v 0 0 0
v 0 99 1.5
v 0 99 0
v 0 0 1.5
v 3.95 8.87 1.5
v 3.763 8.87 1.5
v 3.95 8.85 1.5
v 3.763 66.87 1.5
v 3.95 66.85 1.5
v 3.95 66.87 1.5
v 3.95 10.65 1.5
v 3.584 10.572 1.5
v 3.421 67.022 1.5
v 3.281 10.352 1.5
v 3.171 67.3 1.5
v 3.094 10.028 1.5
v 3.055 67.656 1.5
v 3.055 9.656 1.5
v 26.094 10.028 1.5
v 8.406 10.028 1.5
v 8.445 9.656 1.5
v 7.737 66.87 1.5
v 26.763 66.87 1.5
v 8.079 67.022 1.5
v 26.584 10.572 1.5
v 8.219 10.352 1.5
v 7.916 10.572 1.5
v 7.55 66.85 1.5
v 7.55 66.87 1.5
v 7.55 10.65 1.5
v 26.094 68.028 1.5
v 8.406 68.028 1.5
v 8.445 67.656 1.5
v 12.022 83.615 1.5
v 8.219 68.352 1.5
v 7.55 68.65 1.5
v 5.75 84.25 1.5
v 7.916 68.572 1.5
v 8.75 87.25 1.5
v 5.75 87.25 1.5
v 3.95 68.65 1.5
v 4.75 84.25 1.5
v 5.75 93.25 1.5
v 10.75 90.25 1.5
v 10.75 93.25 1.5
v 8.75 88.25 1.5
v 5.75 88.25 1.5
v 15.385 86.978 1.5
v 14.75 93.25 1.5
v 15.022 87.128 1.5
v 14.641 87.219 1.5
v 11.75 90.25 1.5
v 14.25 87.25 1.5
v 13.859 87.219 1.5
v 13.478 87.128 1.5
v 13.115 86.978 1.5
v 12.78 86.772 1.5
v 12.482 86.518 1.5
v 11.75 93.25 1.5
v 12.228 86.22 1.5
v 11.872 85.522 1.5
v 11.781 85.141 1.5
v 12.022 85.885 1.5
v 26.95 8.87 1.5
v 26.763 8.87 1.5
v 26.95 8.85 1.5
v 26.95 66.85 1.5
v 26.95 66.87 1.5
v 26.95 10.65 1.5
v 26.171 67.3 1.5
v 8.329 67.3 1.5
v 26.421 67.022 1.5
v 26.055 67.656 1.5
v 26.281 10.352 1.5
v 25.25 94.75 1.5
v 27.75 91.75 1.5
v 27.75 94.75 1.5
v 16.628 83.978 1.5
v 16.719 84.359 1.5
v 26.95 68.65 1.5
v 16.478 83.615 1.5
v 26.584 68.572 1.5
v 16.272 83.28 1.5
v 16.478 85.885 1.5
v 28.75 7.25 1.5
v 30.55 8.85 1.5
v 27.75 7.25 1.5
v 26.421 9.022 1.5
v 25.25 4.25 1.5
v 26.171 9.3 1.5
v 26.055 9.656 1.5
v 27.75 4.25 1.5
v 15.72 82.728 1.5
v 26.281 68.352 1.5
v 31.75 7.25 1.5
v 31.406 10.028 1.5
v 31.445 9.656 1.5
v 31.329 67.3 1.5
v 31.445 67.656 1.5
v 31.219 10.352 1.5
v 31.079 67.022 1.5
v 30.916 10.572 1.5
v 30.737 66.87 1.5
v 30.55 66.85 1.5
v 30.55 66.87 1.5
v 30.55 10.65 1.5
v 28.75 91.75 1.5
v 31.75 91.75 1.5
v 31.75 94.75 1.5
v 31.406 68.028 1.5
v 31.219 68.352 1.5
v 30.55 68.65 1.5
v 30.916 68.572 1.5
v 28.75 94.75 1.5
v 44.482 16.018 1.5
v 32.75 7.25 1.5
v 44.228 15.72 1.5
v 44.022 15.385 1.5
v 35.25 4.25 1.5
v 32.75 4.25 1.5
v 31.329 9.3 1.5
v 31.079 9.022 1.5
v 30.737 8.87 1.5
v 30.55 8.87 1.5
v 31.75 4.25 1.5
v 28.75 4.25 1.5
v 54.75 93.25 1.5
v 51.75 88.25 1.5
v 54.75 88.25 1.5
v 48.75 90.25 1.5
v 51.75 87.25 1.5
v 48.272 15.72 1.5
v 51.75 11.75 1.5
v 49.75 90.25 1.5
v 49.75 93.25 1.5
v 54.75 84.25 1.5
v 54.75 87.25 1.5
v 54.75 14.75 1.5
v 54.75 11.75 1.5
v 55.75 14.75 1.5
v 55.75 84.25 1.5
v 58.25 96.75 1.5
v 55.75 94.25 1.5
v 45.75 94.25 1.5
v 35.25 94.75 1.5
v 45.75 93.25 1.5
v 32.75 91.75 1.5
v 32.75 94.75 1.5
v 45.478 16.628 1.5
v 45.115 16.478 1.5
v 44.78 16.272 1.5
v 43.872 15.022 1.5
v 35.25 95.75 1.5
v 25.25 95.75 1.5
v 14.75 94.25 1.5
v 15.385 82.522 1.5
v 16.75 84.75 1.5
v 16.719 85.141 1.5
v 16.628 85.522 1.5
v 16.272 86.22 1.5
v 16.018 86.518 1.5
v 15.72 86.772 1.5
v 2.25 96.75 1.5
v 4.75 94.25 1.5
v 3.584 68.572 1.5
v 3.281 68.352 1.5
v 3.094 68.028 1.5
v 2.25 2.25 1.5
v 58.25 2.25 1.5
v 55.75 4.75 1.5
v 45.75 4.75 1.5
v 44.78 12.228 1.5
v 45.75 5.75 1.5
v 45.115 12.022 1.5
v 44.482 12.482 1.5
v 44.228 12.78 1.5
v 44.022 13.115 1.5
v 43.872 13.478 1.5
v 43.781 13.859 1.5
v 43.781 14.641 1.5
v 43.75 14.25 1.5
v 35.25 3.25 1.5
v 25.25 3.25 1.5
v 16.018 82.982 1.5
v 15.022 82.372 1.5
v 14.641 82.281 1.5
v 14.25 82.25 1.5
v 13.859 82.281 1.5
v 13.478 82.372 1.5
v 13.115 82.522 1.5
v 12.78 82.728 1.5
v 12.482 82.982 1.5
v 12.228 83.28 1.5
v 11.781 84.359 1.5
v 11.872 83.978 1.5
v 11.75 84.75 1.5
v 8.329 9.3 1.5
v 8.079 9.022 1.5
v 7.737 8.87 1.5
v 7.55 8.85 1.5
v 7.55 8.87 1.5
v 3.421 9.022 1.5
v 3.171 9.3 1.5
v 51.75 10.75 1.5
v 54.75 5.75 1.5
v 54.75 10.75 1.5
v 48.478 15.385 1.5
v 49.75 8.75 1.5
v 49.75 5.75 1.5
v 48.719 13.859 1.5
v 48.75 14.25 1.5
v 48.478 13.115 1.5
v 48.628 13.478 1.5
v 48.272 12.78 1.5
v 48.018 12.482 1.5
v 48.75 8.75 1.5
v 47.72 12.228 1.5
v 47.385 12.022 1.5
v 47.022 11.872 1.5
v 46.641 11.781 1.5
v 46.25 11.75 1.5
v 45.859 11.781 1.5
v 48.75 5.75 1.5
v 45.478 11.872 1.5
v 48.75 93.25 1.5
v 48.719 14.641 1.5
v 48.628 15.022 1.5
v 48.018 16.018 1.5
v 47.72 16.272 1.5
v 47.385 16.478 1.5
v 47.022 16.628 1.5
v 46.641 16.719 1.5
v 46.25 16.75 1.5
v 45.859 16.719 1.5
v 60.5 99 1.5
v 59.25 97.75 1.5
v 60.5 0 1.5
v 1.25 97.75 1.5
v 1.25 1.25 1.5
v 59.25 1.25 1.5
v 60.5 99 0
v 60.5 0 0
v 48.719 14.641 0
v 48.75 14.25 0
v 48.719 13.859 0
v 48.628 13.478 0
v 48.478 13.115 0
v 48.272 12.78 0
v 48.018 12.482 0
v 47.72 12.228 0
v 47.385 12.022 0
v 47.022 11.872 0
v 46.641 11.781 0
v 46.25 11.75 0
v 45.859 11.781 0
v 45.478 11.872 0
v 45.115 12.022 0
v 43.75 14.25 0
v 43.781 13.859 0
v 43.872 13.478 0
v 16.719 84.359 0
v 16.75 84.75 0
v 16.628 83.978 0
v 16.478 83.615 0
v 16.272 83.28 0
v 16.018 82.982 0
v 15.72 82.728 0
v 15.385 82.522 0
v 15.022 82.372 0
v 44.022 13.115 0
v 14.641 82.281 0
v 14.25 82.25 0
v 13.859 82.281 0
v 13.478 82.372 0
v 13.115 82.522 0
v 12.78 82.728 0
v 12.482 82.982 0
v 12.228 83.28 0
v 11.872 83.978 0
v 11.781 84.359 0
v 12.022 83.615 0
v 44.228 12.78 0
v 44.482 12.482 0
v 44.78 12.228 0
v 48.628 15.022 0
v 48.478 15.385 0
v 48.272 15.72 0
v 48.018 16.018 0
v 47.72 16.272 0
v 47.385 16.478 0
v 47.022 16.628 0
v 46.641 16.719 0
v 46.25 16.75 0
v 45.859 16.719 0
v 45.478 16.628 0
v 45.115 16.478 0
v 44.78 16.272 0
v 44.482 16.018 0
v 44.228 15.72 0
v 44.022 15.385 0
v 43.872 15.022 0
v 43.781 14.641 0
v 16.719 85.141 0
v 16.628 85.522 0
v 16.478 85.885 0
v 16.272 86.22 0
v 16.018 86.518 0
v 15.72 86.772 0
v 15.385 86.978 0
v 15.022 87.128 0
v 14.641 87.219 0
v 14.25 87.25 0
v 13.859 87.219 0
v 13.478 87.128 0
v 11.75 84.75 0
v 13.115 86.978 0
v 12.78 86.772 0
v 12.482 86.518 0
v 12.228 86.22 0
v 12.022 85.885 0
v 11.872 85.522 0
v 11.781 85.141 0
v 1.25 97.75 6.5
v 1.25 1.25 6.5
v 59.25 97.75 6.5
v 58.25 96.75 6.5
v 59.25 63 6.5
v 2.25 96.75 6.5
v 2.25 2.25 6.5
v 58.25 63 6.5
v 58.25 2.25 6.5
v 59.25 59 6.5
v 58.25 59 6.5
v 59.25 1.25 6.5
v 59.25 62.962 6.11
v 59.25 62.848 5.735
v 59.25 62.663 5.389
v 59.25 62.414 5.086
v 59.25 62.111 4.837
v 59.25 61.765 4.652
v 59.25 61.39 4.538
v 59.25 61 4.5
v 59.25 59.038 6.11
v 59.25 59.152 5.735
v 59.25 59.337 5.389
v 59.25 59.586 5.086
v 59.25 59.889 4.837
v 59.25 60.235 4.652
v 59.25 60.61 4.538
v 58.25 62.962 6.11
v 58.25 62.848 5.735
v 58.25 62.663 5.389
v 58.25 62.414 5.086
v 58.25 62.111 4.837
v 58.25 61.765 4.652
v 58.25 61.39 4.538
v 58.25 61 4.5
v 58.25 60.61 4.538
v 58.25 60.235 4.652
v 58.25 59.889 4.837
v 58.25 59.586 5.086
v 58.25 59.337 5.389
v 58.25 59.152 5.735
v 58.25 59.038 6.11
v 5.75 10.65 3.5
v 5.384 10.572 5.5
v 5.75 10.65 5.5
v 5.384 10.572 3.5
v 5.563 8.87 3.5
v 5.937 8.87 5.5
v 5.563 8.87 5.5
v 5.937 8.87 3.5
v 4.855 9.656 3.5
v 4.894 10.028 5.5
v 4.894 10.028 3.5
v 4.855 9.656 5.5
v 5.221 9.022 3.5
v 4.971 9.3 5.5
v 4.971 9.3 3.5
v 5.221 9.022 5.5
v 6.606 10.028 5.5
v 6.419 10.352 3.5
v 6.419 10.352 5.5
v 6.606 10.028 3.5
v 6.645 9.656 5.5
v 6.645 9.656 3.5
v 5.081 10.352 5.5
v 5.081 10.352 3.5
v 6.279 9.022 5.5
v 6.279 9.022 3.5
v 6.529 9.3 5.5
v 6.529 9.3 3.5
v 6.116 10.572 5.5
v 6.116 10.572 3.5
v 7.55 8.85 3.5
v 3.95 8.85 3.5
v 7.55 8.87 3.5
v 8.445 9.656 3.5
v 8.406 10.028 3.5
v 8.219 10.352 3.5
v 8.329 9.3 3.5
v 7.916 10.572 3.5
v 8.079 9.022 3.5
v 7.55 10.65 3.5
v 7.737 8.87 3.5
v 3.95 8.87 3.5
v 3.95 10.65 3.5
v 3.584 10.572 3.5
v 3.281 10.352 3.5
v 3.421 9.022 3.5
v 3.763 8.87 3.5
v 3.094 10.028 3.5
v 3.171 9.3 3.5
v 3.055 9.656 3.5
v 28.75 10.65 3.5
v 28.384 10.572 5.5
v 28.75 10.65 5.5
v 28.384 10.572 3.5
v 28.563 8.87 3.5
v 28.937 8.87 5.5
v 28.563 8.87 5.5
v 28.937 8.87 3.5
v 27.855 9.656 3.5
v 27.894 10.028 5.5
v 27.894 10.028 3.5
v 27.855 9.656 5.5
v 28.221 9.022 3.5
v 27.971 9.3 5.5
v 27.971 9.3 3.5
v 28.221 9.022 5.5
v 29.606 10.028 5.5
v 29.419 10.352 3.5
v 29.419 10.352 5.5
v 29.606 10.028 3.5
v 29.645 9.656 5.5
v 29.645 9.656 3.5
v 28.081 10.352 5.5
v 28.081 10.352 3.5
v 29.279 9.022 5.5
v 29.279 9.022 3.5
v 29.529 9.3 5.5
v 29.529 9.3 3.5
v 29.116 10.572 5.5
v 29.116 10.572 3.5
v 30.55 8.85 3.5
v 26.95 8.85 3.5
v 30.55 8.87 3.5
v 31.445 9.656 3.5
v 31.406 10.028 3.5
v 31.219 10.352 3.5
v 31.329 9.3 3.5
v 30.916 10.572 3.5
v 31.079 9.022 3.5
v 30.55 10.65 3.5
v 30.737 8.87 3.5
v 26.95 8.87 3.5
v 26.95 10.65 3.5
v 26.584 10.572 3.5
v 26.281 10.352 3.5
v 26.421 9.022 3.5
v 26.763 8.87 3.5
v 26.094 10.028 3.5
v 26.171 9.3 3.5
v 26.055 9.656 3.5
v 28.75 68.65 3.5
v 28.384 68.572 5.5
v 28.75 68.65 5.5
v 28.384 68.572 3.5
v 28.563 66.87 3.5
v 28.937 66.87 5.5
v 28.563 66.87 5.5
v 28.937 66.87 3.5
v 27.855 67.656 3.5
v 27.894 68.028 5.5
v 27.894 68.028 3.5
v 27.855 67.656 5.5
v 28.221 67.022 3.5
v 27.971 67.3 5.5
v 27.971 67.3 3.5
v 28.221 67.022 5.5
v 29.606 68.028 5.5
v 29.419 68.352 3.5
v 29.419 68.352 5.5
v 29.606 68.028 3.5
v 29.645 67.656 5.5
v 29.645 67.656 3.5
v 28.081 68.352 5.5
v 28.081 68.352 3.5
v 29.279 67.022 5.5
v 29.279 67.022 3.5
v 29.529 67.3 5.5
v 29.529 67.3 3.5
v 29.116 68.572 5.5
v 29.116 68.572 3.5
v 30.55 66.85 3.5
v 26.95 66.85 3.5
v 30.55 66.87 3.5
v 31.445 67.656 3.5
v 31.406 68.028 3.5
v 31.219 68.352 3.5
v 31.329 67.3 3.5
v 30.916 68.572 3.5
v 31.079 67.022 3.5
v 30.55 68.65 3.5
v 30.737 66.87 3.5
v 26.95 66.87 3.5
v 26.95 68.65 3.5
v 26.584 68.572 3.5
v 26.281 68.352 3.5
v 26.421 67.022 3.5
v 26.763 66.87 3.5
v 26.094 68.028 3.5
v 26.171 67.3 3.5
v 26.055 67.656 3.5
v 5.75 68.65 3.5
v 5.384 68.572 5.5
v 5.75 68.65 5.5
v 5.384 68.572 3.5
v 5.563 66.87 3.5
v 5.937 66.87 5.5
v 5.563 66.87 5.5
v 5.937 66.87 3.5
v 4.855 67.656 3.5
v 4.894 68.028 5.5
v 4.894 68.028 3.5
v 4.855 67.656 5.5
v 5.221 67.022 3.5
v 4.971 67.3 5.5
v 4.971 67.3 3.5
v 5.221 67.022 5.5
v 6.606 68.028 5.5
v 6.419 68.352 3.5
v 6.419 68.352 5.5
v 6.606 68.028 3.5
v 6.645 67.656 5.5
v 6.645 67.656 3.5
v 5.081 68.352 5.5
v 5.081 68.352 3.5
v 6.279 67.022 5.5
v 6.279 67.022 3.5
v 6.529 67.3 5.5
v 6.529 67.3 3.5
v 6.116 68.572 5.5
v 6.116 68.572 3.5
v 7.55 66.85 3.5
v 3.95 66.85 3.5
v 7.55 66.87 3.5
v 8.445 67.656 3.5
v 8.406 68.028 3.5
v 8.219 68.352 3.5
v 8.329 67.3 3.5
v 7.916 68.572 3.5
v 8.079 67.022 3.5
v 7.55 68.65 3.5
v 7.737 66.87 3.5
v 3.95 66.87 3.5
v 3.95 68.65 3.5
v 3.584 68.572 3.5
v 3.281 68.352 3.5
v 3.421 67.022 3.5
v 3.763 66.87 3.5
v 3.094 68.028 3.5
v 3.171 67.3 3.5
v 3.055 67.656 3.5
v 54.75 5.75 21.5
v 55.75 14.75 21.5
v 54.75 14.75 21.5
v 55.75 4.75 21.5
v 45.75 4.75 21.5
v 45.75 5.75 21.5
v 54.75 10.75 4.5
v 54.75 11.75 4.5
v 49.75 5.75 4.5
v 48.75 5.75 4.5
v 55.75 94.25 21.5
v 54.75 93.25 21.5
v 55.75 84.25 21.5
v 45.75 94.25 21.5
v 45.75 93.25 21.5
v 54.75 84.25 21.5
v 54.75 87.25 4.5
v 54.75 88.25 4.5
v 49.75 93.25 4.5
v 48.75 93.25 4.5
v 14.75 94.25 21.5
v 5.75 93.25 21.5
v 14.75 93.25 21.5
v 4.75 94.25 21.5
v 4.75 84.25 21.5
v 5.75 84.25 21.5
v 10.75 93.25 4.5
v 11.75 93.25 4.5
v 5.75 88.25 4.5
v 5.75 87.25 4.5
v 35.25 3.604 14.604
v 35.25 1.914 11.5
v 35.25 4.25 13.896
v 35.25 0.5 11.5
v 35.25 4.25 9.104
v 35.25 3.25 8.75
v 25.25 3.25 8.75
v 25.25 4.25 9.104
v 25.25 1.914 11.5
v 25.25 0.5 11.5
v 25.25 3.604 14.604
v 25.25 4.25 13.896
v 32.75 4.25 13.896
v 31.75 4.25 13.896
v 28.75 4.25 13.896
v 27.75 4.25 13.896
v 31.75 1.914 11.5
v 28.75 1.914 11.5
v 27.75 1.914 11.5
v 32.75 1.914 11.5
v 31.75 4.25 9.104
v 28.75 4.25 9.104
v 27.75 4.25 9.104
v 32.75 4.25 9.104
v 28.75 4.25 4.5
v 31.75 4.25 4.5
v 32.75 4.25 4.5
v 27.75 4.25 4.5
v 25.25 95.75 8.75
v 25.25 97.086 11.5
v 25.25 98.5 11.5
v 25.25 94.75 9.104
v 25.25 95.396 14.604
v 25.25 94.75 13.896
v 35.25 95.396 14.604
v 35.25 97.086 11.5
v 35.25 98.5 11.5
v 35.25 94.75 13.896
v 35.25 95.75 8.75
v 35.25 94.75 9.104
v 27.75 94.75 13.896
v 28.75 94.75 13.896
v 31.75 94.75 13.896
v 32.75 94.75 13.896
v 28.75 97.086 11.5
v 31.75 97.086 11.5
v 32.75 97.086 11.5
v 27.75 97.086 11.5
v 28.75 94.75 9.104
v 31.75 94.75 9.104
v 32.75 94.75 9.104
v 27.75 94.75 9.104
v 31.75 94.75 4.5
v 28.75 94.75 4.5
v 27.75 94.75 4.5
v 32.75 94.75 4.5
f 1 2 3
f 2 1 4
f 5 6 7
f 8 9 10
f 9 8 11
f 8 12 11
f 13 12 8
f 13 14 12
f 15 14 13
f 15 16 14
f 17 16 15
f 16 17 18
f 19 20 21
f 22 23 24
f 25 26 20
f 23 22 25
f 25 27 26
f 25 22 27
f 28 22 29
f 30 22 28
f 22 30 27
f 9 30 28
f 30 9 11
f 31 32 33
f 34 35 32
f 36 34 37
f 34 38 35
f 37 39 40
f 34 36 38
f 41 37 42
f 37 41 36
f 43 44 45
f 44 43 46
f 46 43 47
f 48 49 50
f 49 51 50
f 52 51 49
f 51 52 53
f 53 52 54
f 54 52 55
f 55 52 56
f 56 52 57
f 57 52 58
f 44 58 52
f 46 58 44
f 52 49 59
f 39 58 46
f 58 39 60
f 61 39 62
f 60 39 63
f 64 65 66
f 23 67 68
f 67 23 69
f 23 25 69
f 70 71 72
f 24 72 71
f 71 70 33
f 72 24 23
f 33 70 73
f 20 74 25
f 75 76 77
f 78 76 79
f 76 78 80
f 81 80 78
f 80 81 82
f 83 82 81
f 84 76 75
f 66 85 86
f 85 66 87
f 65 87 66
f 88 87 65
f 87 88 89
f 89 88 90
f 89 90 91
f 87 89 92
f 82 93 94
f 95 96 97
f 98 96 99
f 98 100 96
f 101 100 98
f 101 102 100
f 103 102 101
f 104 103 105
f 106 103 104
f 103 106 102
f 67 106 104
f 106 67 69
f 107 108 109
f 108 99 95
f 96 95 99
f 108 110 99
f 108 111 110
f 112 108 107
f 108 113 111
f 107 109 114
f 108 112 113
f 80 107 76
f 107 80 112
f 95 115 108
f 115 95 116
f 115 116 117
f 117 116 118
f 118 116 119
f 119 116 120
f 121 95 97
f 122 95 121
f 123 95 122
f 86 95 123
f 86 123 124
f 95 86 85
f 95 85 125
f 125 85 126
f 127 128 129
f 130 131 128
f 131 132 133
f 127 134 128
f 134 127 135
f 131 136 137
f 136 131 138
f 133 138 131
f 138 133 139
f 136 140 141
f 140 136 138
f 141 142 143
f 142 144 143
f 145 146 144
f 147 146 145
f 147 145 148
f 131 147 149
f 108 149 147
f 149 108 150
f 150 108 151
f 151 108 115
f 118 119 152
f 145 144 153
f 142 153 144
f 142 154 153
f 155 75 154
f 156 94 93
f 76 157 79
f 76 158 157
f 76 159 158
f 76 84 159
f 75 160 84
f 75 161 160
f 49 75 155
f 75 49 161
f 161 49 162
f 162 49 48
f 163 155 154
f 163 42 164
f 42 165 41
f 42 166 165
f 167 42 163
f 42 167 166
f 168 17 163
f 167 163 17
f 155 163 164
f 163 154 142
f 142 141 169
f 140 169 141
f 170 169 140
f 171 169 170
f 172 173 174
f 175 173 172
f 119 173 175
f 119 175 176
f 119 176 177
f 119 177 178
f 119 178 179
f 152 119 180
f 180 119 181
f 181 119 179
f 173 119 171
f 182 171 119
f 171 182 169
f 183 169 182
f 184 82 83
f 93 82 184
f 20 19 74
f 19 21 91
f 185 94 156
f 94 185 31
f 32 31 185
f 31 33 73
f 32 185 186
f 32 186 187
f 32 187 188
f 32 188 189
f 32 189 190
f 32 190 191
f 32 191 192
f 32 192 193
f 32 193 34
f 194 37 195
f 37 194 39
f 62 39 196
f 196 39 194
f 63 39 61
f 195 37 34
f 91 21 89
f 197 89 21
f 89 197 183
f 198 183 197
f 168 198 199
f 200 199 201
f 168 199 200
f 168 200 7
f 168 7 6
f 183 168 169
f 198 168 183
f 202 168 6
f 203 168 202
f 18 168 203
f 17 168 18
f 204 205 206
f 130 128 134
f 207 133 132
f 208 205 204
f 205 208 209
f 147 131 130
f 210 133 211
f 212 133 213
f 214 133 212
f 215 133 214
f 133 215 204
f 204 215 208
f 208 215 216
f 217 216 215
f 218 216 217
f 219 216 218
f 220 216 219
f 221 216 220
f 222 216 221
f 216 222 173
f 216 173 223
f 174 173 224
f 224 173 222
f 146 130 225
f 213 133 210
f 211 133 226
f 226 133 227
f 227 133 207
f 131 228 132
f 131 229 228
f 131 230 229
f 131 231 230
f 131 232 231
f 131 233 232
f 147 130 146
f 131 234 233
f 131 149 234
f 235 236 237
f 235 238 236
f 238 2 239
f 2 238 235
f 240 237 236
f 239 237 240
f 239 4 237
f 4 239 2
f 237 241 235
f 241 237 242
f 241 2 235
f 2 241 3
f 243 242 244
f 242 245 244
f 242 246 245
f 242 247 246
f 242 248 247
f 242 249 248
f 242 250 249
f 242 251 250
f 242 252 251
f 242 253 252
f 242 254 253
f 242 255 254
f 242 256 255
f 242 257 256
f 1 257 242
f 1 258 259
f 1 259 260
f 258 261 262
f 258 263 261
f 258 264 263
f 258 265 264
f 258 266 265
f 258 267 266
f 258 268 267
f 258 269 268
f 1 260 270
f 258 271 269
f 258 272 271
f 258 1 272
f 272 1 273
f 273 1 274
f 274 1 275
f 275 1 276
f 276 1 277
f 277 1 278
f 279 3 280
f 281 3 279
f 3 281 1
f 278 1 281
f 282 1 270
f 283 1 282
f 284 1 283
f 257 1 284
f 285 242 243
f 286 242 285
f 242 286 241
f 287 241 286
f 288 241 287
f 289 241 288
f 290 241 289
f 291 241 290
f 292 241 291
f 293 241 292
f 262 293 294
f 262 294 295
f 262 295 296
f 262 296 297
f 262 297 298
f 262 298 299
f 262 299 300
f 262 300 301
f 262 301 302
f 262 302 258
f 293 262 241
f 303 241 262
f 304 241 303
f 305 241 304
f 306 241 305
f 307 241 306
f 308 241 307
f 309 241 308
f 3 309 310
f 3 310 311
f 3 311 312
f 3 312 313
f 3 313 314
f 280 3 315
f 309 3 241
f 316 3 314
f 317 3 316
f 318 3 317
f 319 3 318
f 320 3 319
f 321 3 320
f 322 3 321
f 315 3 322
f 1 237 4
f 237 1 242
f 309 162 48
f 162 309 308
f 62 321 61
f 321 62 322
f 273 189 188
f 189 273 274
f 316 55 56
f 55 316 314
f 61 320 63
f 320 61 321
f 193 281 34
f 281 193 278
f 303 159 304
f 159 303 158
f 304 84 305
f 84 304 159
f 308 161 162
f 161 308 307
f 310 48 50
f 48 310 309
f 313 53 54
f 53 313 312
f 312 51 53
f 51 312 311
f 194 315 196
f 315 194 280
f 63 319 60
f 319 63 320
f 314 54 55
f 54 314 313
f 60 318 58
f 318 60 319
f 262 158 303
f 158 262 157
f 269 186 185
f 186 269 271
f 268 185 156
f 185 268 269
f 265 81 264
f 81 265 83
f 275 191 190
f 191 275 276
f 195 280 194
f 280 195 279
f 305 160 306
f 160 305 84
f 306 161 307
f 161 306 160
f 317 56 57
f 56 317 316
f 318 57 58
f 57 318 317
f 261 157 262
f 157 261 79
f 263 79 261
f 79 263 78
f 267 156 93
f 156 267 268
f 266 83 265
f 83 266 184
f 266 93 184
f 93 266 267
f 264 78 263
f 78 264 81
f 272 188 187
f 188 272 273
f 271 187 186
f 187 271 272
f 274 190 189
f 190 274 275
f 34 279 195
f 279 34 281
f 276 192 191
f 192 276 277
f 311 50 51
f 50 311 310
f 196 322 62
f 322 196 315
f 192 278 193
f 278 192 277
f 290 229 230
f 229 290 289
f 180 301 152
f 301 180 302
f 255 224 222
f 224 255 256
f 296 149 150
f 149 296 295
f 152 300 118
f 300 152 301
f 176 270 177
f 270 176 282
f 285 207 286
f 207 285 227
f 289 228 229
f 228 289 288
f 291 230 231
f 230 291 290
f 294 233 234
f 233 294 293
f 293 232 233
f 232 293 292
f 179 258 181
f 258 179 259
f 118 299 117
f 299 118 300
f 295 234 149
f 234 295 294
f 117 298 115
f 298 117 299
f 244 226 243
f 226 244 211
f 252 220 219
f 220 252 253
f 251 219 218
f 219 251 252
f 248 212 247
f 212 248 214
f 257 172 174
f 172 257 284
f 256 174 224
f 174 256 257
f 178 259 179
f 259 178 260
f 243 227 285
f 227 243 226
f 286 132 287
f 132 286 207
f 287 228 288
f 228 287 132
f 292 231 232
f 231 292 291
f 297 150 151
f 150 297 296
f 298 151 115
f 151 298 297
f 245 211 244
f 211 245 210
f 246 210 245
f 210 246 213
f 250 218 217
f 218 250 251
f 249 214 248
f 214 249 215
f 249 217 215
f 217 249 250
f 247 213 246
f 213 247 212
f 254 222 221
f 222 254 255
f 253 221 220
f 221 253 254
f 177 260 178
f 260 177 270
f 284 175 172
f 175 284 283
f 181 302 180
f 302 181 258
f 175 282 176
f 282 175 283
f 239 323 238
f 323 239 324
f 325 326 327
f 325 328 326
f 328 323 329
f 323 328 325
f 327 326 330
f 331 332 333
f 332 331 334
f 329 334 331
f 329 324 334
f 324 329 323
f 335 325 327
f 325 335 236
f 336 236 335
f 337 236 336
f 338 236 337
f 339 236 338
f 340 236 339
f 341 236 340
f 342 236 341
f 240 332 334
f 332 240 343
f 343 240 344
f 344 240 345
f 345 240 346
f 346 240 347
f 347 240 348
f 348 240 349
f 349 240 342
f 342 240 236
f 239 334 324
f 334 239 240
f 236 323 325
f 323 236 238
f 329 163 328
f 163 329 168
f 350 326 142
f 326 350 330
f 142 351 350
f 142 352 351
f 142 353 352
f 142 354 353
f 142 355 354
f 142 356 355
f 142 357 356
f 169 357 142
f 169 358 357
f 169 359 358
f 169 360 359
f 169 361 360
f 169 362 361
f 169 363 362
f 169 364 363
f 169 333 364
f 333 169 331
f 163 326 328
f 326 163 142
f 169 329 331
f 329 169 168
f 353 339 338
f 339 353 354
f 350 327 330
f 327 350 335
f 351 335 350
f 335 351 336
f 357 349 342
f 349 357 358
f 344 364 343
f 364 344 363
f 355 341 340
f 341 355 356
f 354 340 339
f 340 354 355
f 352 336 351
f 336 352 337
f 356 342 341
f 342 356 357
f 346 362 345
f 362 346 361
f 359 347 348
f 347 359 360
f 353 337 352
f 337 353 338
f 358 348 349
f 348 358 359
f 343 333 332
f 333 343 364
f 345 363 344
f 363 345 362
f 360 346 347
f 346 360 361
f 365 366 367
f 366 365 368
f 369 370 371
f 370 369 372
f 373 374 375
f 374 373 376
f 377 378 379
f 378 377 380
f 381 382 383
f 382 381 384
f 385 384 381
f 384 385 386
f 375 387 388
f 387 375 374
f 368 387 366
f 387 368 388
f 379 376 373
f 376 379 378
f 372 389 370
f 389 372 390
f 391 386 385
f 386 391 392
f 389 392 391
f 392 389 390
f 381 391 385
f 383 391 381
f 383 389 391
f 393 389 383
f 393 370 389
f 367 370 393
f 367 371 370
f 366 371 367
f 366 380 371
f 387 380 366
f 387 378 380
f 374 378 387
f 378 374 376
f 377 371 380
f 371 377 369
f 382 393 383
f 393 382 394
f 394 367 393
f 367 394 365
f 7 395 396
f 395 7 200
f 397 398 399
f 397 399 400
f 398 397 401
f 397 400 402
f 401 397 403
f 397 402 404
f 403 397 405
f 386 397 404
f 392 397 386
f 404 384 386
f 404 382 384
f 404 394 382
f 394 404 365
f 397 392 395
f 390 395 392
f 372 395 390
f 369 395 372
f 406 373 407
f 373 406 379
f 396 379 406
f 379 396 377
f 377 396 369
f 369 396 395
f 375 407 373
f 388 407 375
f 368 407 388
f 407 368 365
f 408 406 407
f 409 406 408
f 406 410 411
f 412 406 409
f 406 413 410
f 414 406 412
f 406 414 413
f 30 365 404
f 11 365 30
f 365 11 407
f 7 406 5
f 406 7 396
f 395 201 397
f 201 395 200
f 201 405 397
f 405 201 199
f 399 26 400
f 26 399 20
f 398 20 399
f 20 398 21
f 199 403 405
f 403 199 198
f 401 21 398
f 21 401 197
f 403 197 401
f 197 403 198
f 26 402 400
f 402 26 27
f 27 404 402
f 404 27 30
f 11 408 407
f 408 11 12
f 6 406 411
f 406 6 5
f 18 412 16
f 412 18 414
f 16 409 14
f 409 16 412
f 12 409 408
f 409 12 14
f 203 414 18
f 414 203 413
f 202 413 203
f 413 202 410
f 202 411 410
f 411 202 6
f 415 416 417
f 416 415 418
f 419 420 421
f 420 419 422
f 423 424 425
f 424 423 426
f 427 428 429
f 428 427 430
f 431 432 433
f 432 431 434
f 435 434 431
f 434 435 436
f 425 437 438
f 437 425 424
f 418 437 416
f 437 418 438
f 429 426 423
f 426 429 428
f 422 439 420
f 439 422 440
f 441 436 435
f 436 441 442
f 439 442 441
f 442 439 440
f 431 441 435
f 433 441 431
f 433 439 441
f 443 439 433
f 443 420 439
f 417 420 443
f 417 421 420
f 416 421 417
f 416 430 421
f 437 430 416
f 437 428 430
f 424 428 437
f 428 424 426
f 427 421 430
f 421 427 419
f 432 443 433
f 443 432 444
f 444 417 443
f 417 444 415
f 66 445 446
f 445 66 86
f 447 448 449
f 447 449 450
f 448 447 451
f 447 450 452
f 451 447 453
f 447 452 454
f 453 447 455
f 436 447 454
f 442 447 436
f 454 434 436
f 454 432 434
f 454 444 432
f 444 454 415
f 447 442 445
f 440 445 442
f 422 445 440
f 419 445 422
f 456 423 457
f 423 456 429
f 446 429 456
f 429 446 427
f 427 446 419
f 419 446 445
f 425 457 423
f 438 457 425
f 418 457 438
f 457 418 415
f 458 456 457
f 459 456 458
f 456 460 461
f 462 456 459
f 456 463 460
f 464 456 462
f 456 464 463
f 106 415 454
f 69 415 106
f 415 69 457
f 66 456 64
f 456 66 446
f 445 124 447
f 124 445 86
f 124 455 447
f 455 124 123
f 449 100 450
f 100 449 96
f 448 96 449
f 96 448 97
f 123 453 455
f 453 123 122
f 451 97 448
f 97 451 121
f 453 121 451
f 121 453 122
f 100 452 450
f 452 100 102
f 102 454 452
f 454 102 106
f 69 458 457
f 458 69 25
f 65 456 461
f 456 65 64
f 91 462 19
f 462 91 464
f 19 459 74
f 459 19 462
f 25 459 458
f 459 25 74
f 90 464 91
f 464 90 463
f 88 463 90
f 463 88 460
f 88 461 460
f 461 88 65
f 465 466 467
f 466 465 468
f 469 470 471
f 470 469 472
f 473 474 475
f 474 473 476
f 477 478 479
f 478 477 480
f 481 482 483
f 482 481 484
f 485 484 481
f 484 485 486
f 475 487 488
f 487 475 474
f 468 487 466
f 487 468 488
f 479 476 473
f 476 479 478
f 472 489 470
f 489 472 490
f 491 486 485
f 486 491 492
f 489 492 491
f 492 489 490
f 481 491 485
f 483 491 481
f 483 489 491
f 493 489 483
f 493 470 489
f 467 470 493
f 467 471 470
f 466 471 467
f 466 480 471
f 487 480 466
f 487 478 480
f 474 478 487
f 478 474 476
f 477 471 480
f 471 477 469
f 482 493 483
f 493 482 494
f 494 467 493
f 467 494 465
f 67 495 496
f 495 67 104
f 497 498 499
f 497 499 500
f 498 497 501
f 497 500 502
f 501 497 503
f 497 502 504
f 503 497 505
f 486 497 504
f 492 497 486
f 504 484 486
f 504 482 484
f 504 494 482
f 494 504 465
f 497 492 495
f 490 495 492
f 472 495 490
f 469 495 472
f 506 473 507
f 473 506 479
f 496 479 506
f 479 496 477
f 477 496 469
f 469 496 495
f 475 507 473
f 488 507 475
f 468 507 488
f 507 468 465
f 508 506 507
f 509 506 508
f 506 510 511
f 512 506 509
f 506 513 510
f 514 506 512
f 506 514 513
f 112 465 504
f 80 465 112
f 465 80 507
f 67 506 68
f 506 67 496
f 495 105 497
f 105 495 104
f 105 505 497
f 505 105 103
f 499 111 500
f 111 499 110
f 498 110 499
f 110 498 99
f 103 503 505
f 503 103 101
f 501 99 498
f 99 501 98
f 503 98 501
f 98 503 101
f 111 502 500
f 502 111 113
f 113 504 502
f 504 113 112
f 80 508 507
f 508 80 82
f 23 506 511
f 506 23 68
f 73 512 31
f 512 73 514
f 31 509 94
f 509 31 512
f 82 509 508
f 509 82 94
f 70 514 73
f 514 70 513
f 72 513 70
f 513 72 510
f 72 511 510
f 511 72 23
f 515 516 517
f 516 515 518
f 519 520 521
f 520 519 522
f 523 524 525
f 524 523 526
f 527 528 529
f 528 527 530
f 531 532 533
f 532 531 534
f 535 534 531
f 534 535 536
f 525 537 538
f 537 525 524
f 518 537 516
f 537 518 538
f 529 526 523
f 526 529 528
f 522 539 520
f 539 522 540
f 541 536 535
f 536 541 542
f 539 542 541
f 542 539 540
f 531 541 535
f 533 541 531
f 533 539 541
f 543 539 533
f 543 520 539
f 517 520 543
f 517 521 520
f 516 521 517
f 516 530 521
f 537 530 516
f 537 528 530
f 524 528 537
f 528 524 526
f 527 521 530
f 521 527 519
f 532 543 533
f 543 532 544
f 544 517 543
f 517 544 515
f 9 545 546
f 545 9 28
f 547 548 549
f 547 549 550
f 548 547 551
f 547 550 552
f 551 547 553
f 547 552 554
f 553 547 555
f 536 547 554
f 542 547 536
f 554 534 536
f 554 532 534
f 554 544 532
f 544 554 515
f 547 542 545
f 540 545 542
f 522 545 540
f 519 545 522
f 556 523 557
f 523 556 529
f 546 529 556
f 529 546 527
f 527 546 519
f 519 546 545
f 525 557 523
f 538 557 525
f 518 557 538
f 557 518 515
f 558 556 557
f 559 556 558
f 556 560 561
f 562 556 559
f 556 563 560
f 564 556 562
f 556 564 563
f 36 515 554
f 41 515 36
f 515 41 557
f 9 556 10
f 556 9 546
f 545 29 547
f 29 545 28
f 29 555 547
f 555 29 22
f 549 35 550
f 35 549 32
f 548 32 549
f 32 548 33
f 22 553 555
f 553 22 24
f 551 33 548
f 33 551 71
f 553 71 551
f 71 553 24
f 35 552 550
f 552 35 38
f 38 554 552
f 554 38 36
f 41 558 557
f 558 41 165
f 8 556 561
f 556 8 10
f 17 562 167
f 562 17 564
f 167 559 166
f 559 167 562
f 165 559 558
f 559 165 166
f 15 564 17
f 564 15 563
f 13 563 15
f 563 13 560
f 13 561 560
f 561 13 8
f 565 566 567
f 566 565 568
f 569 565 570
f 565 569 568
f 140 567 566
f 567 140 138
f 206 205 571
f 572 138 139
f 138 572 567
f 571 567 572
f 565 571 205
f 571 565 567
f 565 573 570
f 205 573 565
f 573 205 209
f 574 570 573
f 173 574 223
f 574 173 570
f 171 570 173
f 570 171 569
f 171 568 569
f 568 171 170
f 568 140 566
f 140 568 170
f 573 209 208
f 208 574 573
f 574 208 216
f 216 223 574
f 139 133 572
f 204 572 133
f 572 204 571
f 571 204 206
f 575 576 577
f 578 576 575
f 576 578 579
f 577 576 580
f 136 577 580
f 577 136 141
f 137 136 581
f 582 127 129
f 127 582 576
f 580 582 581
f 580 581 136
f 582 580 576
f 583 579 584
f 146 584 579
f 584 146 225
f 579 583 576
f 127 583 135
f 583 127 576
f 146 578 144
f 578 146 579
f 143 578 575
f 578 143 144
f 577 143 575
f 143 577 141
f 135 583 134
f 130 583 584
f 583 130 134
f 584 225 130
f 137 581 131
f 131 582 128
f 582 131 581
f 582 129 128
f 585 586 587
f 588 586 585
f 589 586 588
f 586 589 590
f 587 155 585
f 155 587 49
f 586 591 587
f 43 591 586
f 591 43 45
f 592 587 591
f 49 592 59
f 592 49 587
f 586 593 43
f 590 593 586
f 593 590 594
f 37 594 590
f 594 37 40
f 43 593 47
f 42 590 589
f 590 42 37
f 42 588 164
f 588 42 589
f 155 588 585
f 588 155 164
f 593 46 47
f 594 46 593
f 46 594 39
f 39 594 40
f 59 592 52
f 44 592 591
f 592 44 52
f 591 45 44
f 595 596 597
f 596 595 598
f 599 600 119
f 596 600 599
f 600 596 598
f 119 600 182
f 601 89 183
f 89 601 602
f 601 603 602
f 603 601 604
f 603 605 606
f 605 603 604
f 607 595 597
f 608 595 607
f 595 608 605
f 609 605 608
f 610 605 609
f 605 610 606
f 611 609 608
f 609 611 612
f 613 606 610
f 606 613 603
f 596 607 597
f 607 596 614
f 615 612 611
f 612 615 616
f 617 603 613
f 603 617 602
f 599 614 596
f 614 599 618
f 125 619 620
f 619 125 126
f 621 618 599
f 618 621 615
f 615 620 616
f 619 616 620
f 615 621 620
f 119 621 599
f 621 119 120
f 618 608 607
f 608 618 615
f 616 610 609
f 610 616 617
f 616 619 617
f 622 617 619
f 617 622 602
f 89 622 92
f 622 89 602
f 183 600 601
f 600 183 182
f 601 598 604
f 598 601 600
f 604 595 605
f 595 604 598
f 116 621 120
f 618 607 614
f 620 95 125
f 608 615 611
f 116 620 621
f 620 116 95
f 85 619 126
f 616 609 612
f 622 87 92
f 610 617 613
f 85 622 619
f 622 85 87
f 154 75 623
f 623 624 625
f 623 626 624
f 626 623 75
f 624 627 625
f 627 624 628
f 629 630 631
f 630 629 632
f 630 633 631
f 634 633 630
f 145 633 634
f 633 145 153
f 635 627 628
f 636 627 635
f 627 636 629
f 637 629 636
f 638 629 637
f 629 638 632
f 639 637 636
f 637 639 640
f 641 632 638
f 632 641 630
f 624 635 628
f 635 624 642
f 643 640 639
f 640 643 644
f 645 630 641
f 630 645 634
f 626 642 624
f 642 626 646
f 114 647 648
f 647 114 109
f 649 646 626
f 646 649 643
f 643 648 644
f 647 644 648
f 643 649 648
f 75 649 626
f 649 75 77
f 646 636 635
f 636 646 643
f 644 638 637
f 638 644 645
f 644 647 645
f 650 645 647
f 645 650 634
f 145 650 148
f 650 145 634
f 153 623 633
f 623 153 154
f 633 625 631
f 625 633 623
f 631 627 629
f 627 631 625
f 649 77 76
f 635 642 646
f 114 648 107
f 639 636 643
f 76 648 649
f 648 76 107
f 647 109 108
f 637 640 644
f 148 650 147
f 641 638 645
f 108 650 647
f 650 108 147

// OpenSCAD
// file: variables.scad
$fa = 1;
$fs = 0.4;

wall_thickness = 1;
wall_buffer = 0.25;
back_thickness = 1.5;

hat_width = 58;
hat_length = 96.5;
hat_thickness = 3;
hat_height = 21;
hat_bottom_padding = 2;

display_width = 47.32;
display_length = 81.12;
display_inset = (hat_width - display_width) / 2;

case_width = hat_width + (wall_thickness + wall_buffer) * 2;
case_length = hat_length + (wall_thickness + wall_buffer) * 2;
case_height = hat_height + hat_bottom_padding + back_thickness * 2;

cable_cutout_radius = 2;
cable_cutout_offset = 61;
cable_cutout_height = 6.5;

clip_width = 10;
clip_point_height = 10;

$vpt = [hat_width / 2, hat_length / 2, 0];
$vpd = 500;
// main file
include<./variables.scad>

bottom_inside_width = hat_width - wall_thickness * 2;
bottom_inside_length = hat_length - wall_thickness * 2;

color("gray")
base();

translate([
    wall_thickness * 2 + wall_buffer,
    wall_thickness * 2 + wall_buffer,
    back_thickness
]) {
    color("blue")
    translate([0, 4, 0])
    pins();
    
    color("red")
    supports();
    
    color("green")
    clips();
}

module base() {
    screw_hole_radius = 2.5;
    screw_hole_inset = 12;
    
    difference() {
        cube([
            case_width,
            case_length,
            back_thickness
        ]);
        
        translate([
            wall_thickness * 2 + wall_buffer + screw_hole_inset,
            hat_length + wall_buffer - screw_hole_inset,
            0
        ])
        cylinder(
            h = 30,
            r = screw_hole_radius,
            center = true
        );
        
        translate([
            hat_width + wall_buffer - screw_hole_inset,
            wall_thickness * 2 + wall_buffer + screw_hole_inset,
            0
        ])
        cylinder(
            h = 30,
            r = screw_hole_radius,
            center = true
        );
    };

    translate([
        wall_thickness + wall_buffer,
        wall_thickness + wall_buffer,
        back_thickness
    ])
    difference() {
        cube([
            hat_width,
            hat_length,
            5
        ]);
        
        translate([wall_thickness, wall_thickness, -2])
        cube([
            bottom_inside_width,
            bottom_inside_length,
            10
        ]);
        
        translate([
            hat_width - 1,
            cable_cutout_offset - wall_thickness - wall_buffer,
            cable_cutout_height - back_thickness
        ])
        rotate([0, 90, 0])
        cylinder(
            h = wall_thickness + 2,
            r = cable_cutout_radius,
            center = true
        );
    };
}

module pins() {
    pi_length = 65;
    pi_width = 30;
    pin_inset = 3.5;
    
    translate([
        pin_inset,
        pin_inset,
        0
    ])
    pin();
    
    translate([
        pi_width - pin_inset,
        pin_inset,
        0
    ])
    pin();
    
    translate([
        pi_width - pin_inset,
        pi_length - pin_inset,
        0
    ])
    pin();
    
    translate([
        pin_inset,
        pi_length - pin_inset,
        0
    ])
    pin();
    
    module pin() {
        pin_height = hat_bottom_padding + 2;
        pin_radius = 0.9;
        
        rotate([0, 0, 90])
        union() {
            cylinder(
                h = pin_height,
                r = pin_radius
            );
            
            translate([
                -pin_radius,
                -pin_radius * 2,
                0
            ])
            cube([
                pin_radius * 2,
                pin_radius * 4,
                hat_bottom_padding
            ]);
            
            translate([
                0,
                -pin_radius * 2,
                0
            ])
            cylinder(
                h = hat_bottom_padding,
                r = pin_radius
            );
            
            translate([
                0,
                pin_radius * 2,
                0
            ])
            cylinder(
                h = hat_bottom_padding,
                r = pin_radius
            );
        }
    }
}

module supports() {
    support_inset = 2.5;
    
    translate([
        hat_width - wall_thickness * 2 - support_inset,
        support_inset,
        0
    ])
    support();
    
    translate([
        hat_width - wall_thickness * 2 - support_inset,
        hat_length - wall_thickness * 2 - support_inset,
        0
    ])
    mirror([0, 1, 0])
    support();
    
    translate([
        support_inset,
        hat_length - wall_thickness * 2 - support_inset,
        0
    ])
    mirror([-1, 1, 0])
    support();
    
    module support() {
        support_height = hat_height + hat_bottom_padding - hat_thickness;
        support_width = 10;
        support_thickness = wall_thickness;
        
        fillet_thickness = support_thickness;
        fillet_inset = 3;
        
        linear_extrude(height = support_height)
        polygon([
            [0, 0],
            [-support_width, 0],
            [-support_width, support_thickness],
            [-support_thickness, support_thickness],
            [-support_thickness, support_width],
            [0, support_width]
        ]);
        
        translate([-(support_width - fillet_thickness - fillet_inset), support_thickness, 0])
        rotate([0, -90, 0])
        support_fillet();
        
        translate([-support_thickness, support_width - fillet_inset, 0])
        rotate([0, -90, 90])
        support_fillet();
        
        module support_fillet() {
            fillet_size = 3;
            
            linear_extrude(height = fillet_thickness)
            polygon([
                [0, 0],
                [fillet_size, 0],
                [0, fillet_size],
            ]);
        }
    }
}
module clips() {
    clip_inset = 1;
    clip_point_depth = clip_inset + wall_thickness * 1.5 + wall_buffer;
    
    translate([
        bottom_inside_width / 2,
        clip_inset,
        0
    ])
    clip();
    
    translate([
        bottom_inside_width / 2,
        bottom_inside_length - clip_inset,
        0
    ])
    rotate([0, 0, 180])
    clip();
    
    module clip() {
        clip_thickness = wall_thickness;
        
        fillet_thickness = clip_thickness;
        fillet_inset = 2;
        
        rotate([0, -90, 0])
        linear_extrude(height = clip_width, center = true)
        polygon([
            [0, 0],
        
            [clip_point_height - clip_point_depth, 0],
            [clip_point_height, -clip_point_depth],
            [clip_point_height + clip_point_depth + clip_thickness / sqrt(2) / 2, clip_thickness / sqrt(2) / 2],
        
            [clip_point_height + clip_point_depth - clip_thickness / sqrt(2) / 2, clip_thickness],
            [clip_point_height, -(clip_point_depth - (clip_thickness * sqrt(2)))],
            [clip_point_height - clip_point_depth + clip_thickness / sqrt(2) / 2, clip_thickness],
            [0, clip_thickness],
        ]);
        
        translate([clip_width / 2 - fillet_thickness - fillet_inset, 0, 0])
        clip_fillet();
        
        translate([
            -(clip_width / 2 - fillet_thickness - fillet_inset),
            0,
            0
        ])
        clip_fillet();
        
        module clip_fillet() {
            fillet_size = 3;
            
            rotate([0, -90, 0])
            linear_extrude(height = fillet_thickness, center = true)
            union() {
                polygon([
                
                    [clip_point_height + clip_point_depth - clip_thickness / sqrt(2) / 2, clip_thickness],
                    [clip_point_height, -(clip_point_depth - (clip_thickness * sqrt(2)))],
                    [clip_point_height - clip_point_depth + clip_thickness / sqrt(2) / 2, clip_thickness]
                ]);
                
                polygon([
                    [0, clip_thickness],
                    [fillet_size, clip_thickness],
                    [0, fillet_size + clip_thickness],
                ]);
            }
        }
    }
}

module top() {
    top_inside_width = case_width - wall_thickness * 2;
    top_inside_length = case_length - wall_thickness * 2;
    
    clip_point_height_rev = case_height - back_thickness - clip_point_height;
    
    cable_cutout_height_rev = case_height - back_thickness - cable_cutout_height;
    
    color("gray")
    
    union() {
        difference() {
            base();
            
            translate([case_width / 2, 0, 0])
            rotate([0, -90, 0])
            linear_extrude(
                height = clip_width + 2,
                center = true
            )
            polygon([
                [clip_point_height_rev + wall_thickness, wall_thickness * 1.5],
                [clip_point_height_rev, wall_thickness / 2],
                [clip_point_height_rev - wall_thickness, wall_thickness * 1.5],
            ]);
            
            translate([case_width / 2, case_length, 0])
            rotate([180, -90, 0])
            linear_extrude(
                height = clip_width + 2,
                center = true
            )
            polygon([
                [clip_point_height_rev + wall_thickness, wall_thickness * 1.5],
                [clip_point_height_rev, wall_thickness / 2],
                [clip_point_height_rev - wall_thickness, wall_thickness * 1.5],
            ]);
        }
        
        translate([case_width / 2, 0, 0])
        rotate([0, -90, 0])
        linear_extrude(
            height = clip_width + 2,
            center = true
        )
        polygon([
            [clip_point_height_rev, wall_thickness / 2],
            [clip_point_height_rev - wall_thickness, wall_thickness * 1.5],
            [clip_point_height_rev - wall_thickness * 2, wall_thickness / 2],
        ]);
        
        translate([case_width / 2, case_length, 0])
        rotate([180, -90, 0])
        linear_extrude(
            height = clip_width + 2,
            center = true
        )
        polygon([
            [clip_point_height_rev, wall_thickness / 2],
            [clip_point_height_rev - wall_thickness, wall_thickness * 1.5],
            [clip_point_height_rev - wall_thickness * 2, wall_thickness / 2],
        ]);
    }
    
    module base() {
        difference() {
            cube([
                case_width,
                case_length,
                back_thickness
            ]);
            
            translate([
                display_inset + wall_thickness + wall_buffer,
                case_length - (display_inset + wall_thickness + wall_buffer + display_length),
                -1
            ])
            cube([
                display_width,
                display_length,
                back_thickness + 2
            ]);
        }
        
        difference() {
            cube([
                case_width,
                case_length,
                case_height - back_thickness
            ]);
            
            translate([
                wall_thickness,
                wall_thickness,
                -1
            ])
            cube([
                top_inside_width,
                top_inside_length,
                case_height - back_thickness + 2
            ]);
            
            translate([
                -1,
                cable_cutout_offset,
                0
            ])
            rotate([0, 90, 0])
            linear_extrude(
                height = wall_thickness + 2
            )
            union() {
                translate([
                    -cable_cutout_height_rev,
                    0
                ])
                circle(
                    r = cable_cutout_radius
                );
                
                translate([
                    -(case_height - back_thickness + 1),
                    -cable_cutout_radius
                ])
                square([
                cable_cutout_height + 1,
                    cable_cutout_radius * 2
                ]);
            }
        }
    }
}
